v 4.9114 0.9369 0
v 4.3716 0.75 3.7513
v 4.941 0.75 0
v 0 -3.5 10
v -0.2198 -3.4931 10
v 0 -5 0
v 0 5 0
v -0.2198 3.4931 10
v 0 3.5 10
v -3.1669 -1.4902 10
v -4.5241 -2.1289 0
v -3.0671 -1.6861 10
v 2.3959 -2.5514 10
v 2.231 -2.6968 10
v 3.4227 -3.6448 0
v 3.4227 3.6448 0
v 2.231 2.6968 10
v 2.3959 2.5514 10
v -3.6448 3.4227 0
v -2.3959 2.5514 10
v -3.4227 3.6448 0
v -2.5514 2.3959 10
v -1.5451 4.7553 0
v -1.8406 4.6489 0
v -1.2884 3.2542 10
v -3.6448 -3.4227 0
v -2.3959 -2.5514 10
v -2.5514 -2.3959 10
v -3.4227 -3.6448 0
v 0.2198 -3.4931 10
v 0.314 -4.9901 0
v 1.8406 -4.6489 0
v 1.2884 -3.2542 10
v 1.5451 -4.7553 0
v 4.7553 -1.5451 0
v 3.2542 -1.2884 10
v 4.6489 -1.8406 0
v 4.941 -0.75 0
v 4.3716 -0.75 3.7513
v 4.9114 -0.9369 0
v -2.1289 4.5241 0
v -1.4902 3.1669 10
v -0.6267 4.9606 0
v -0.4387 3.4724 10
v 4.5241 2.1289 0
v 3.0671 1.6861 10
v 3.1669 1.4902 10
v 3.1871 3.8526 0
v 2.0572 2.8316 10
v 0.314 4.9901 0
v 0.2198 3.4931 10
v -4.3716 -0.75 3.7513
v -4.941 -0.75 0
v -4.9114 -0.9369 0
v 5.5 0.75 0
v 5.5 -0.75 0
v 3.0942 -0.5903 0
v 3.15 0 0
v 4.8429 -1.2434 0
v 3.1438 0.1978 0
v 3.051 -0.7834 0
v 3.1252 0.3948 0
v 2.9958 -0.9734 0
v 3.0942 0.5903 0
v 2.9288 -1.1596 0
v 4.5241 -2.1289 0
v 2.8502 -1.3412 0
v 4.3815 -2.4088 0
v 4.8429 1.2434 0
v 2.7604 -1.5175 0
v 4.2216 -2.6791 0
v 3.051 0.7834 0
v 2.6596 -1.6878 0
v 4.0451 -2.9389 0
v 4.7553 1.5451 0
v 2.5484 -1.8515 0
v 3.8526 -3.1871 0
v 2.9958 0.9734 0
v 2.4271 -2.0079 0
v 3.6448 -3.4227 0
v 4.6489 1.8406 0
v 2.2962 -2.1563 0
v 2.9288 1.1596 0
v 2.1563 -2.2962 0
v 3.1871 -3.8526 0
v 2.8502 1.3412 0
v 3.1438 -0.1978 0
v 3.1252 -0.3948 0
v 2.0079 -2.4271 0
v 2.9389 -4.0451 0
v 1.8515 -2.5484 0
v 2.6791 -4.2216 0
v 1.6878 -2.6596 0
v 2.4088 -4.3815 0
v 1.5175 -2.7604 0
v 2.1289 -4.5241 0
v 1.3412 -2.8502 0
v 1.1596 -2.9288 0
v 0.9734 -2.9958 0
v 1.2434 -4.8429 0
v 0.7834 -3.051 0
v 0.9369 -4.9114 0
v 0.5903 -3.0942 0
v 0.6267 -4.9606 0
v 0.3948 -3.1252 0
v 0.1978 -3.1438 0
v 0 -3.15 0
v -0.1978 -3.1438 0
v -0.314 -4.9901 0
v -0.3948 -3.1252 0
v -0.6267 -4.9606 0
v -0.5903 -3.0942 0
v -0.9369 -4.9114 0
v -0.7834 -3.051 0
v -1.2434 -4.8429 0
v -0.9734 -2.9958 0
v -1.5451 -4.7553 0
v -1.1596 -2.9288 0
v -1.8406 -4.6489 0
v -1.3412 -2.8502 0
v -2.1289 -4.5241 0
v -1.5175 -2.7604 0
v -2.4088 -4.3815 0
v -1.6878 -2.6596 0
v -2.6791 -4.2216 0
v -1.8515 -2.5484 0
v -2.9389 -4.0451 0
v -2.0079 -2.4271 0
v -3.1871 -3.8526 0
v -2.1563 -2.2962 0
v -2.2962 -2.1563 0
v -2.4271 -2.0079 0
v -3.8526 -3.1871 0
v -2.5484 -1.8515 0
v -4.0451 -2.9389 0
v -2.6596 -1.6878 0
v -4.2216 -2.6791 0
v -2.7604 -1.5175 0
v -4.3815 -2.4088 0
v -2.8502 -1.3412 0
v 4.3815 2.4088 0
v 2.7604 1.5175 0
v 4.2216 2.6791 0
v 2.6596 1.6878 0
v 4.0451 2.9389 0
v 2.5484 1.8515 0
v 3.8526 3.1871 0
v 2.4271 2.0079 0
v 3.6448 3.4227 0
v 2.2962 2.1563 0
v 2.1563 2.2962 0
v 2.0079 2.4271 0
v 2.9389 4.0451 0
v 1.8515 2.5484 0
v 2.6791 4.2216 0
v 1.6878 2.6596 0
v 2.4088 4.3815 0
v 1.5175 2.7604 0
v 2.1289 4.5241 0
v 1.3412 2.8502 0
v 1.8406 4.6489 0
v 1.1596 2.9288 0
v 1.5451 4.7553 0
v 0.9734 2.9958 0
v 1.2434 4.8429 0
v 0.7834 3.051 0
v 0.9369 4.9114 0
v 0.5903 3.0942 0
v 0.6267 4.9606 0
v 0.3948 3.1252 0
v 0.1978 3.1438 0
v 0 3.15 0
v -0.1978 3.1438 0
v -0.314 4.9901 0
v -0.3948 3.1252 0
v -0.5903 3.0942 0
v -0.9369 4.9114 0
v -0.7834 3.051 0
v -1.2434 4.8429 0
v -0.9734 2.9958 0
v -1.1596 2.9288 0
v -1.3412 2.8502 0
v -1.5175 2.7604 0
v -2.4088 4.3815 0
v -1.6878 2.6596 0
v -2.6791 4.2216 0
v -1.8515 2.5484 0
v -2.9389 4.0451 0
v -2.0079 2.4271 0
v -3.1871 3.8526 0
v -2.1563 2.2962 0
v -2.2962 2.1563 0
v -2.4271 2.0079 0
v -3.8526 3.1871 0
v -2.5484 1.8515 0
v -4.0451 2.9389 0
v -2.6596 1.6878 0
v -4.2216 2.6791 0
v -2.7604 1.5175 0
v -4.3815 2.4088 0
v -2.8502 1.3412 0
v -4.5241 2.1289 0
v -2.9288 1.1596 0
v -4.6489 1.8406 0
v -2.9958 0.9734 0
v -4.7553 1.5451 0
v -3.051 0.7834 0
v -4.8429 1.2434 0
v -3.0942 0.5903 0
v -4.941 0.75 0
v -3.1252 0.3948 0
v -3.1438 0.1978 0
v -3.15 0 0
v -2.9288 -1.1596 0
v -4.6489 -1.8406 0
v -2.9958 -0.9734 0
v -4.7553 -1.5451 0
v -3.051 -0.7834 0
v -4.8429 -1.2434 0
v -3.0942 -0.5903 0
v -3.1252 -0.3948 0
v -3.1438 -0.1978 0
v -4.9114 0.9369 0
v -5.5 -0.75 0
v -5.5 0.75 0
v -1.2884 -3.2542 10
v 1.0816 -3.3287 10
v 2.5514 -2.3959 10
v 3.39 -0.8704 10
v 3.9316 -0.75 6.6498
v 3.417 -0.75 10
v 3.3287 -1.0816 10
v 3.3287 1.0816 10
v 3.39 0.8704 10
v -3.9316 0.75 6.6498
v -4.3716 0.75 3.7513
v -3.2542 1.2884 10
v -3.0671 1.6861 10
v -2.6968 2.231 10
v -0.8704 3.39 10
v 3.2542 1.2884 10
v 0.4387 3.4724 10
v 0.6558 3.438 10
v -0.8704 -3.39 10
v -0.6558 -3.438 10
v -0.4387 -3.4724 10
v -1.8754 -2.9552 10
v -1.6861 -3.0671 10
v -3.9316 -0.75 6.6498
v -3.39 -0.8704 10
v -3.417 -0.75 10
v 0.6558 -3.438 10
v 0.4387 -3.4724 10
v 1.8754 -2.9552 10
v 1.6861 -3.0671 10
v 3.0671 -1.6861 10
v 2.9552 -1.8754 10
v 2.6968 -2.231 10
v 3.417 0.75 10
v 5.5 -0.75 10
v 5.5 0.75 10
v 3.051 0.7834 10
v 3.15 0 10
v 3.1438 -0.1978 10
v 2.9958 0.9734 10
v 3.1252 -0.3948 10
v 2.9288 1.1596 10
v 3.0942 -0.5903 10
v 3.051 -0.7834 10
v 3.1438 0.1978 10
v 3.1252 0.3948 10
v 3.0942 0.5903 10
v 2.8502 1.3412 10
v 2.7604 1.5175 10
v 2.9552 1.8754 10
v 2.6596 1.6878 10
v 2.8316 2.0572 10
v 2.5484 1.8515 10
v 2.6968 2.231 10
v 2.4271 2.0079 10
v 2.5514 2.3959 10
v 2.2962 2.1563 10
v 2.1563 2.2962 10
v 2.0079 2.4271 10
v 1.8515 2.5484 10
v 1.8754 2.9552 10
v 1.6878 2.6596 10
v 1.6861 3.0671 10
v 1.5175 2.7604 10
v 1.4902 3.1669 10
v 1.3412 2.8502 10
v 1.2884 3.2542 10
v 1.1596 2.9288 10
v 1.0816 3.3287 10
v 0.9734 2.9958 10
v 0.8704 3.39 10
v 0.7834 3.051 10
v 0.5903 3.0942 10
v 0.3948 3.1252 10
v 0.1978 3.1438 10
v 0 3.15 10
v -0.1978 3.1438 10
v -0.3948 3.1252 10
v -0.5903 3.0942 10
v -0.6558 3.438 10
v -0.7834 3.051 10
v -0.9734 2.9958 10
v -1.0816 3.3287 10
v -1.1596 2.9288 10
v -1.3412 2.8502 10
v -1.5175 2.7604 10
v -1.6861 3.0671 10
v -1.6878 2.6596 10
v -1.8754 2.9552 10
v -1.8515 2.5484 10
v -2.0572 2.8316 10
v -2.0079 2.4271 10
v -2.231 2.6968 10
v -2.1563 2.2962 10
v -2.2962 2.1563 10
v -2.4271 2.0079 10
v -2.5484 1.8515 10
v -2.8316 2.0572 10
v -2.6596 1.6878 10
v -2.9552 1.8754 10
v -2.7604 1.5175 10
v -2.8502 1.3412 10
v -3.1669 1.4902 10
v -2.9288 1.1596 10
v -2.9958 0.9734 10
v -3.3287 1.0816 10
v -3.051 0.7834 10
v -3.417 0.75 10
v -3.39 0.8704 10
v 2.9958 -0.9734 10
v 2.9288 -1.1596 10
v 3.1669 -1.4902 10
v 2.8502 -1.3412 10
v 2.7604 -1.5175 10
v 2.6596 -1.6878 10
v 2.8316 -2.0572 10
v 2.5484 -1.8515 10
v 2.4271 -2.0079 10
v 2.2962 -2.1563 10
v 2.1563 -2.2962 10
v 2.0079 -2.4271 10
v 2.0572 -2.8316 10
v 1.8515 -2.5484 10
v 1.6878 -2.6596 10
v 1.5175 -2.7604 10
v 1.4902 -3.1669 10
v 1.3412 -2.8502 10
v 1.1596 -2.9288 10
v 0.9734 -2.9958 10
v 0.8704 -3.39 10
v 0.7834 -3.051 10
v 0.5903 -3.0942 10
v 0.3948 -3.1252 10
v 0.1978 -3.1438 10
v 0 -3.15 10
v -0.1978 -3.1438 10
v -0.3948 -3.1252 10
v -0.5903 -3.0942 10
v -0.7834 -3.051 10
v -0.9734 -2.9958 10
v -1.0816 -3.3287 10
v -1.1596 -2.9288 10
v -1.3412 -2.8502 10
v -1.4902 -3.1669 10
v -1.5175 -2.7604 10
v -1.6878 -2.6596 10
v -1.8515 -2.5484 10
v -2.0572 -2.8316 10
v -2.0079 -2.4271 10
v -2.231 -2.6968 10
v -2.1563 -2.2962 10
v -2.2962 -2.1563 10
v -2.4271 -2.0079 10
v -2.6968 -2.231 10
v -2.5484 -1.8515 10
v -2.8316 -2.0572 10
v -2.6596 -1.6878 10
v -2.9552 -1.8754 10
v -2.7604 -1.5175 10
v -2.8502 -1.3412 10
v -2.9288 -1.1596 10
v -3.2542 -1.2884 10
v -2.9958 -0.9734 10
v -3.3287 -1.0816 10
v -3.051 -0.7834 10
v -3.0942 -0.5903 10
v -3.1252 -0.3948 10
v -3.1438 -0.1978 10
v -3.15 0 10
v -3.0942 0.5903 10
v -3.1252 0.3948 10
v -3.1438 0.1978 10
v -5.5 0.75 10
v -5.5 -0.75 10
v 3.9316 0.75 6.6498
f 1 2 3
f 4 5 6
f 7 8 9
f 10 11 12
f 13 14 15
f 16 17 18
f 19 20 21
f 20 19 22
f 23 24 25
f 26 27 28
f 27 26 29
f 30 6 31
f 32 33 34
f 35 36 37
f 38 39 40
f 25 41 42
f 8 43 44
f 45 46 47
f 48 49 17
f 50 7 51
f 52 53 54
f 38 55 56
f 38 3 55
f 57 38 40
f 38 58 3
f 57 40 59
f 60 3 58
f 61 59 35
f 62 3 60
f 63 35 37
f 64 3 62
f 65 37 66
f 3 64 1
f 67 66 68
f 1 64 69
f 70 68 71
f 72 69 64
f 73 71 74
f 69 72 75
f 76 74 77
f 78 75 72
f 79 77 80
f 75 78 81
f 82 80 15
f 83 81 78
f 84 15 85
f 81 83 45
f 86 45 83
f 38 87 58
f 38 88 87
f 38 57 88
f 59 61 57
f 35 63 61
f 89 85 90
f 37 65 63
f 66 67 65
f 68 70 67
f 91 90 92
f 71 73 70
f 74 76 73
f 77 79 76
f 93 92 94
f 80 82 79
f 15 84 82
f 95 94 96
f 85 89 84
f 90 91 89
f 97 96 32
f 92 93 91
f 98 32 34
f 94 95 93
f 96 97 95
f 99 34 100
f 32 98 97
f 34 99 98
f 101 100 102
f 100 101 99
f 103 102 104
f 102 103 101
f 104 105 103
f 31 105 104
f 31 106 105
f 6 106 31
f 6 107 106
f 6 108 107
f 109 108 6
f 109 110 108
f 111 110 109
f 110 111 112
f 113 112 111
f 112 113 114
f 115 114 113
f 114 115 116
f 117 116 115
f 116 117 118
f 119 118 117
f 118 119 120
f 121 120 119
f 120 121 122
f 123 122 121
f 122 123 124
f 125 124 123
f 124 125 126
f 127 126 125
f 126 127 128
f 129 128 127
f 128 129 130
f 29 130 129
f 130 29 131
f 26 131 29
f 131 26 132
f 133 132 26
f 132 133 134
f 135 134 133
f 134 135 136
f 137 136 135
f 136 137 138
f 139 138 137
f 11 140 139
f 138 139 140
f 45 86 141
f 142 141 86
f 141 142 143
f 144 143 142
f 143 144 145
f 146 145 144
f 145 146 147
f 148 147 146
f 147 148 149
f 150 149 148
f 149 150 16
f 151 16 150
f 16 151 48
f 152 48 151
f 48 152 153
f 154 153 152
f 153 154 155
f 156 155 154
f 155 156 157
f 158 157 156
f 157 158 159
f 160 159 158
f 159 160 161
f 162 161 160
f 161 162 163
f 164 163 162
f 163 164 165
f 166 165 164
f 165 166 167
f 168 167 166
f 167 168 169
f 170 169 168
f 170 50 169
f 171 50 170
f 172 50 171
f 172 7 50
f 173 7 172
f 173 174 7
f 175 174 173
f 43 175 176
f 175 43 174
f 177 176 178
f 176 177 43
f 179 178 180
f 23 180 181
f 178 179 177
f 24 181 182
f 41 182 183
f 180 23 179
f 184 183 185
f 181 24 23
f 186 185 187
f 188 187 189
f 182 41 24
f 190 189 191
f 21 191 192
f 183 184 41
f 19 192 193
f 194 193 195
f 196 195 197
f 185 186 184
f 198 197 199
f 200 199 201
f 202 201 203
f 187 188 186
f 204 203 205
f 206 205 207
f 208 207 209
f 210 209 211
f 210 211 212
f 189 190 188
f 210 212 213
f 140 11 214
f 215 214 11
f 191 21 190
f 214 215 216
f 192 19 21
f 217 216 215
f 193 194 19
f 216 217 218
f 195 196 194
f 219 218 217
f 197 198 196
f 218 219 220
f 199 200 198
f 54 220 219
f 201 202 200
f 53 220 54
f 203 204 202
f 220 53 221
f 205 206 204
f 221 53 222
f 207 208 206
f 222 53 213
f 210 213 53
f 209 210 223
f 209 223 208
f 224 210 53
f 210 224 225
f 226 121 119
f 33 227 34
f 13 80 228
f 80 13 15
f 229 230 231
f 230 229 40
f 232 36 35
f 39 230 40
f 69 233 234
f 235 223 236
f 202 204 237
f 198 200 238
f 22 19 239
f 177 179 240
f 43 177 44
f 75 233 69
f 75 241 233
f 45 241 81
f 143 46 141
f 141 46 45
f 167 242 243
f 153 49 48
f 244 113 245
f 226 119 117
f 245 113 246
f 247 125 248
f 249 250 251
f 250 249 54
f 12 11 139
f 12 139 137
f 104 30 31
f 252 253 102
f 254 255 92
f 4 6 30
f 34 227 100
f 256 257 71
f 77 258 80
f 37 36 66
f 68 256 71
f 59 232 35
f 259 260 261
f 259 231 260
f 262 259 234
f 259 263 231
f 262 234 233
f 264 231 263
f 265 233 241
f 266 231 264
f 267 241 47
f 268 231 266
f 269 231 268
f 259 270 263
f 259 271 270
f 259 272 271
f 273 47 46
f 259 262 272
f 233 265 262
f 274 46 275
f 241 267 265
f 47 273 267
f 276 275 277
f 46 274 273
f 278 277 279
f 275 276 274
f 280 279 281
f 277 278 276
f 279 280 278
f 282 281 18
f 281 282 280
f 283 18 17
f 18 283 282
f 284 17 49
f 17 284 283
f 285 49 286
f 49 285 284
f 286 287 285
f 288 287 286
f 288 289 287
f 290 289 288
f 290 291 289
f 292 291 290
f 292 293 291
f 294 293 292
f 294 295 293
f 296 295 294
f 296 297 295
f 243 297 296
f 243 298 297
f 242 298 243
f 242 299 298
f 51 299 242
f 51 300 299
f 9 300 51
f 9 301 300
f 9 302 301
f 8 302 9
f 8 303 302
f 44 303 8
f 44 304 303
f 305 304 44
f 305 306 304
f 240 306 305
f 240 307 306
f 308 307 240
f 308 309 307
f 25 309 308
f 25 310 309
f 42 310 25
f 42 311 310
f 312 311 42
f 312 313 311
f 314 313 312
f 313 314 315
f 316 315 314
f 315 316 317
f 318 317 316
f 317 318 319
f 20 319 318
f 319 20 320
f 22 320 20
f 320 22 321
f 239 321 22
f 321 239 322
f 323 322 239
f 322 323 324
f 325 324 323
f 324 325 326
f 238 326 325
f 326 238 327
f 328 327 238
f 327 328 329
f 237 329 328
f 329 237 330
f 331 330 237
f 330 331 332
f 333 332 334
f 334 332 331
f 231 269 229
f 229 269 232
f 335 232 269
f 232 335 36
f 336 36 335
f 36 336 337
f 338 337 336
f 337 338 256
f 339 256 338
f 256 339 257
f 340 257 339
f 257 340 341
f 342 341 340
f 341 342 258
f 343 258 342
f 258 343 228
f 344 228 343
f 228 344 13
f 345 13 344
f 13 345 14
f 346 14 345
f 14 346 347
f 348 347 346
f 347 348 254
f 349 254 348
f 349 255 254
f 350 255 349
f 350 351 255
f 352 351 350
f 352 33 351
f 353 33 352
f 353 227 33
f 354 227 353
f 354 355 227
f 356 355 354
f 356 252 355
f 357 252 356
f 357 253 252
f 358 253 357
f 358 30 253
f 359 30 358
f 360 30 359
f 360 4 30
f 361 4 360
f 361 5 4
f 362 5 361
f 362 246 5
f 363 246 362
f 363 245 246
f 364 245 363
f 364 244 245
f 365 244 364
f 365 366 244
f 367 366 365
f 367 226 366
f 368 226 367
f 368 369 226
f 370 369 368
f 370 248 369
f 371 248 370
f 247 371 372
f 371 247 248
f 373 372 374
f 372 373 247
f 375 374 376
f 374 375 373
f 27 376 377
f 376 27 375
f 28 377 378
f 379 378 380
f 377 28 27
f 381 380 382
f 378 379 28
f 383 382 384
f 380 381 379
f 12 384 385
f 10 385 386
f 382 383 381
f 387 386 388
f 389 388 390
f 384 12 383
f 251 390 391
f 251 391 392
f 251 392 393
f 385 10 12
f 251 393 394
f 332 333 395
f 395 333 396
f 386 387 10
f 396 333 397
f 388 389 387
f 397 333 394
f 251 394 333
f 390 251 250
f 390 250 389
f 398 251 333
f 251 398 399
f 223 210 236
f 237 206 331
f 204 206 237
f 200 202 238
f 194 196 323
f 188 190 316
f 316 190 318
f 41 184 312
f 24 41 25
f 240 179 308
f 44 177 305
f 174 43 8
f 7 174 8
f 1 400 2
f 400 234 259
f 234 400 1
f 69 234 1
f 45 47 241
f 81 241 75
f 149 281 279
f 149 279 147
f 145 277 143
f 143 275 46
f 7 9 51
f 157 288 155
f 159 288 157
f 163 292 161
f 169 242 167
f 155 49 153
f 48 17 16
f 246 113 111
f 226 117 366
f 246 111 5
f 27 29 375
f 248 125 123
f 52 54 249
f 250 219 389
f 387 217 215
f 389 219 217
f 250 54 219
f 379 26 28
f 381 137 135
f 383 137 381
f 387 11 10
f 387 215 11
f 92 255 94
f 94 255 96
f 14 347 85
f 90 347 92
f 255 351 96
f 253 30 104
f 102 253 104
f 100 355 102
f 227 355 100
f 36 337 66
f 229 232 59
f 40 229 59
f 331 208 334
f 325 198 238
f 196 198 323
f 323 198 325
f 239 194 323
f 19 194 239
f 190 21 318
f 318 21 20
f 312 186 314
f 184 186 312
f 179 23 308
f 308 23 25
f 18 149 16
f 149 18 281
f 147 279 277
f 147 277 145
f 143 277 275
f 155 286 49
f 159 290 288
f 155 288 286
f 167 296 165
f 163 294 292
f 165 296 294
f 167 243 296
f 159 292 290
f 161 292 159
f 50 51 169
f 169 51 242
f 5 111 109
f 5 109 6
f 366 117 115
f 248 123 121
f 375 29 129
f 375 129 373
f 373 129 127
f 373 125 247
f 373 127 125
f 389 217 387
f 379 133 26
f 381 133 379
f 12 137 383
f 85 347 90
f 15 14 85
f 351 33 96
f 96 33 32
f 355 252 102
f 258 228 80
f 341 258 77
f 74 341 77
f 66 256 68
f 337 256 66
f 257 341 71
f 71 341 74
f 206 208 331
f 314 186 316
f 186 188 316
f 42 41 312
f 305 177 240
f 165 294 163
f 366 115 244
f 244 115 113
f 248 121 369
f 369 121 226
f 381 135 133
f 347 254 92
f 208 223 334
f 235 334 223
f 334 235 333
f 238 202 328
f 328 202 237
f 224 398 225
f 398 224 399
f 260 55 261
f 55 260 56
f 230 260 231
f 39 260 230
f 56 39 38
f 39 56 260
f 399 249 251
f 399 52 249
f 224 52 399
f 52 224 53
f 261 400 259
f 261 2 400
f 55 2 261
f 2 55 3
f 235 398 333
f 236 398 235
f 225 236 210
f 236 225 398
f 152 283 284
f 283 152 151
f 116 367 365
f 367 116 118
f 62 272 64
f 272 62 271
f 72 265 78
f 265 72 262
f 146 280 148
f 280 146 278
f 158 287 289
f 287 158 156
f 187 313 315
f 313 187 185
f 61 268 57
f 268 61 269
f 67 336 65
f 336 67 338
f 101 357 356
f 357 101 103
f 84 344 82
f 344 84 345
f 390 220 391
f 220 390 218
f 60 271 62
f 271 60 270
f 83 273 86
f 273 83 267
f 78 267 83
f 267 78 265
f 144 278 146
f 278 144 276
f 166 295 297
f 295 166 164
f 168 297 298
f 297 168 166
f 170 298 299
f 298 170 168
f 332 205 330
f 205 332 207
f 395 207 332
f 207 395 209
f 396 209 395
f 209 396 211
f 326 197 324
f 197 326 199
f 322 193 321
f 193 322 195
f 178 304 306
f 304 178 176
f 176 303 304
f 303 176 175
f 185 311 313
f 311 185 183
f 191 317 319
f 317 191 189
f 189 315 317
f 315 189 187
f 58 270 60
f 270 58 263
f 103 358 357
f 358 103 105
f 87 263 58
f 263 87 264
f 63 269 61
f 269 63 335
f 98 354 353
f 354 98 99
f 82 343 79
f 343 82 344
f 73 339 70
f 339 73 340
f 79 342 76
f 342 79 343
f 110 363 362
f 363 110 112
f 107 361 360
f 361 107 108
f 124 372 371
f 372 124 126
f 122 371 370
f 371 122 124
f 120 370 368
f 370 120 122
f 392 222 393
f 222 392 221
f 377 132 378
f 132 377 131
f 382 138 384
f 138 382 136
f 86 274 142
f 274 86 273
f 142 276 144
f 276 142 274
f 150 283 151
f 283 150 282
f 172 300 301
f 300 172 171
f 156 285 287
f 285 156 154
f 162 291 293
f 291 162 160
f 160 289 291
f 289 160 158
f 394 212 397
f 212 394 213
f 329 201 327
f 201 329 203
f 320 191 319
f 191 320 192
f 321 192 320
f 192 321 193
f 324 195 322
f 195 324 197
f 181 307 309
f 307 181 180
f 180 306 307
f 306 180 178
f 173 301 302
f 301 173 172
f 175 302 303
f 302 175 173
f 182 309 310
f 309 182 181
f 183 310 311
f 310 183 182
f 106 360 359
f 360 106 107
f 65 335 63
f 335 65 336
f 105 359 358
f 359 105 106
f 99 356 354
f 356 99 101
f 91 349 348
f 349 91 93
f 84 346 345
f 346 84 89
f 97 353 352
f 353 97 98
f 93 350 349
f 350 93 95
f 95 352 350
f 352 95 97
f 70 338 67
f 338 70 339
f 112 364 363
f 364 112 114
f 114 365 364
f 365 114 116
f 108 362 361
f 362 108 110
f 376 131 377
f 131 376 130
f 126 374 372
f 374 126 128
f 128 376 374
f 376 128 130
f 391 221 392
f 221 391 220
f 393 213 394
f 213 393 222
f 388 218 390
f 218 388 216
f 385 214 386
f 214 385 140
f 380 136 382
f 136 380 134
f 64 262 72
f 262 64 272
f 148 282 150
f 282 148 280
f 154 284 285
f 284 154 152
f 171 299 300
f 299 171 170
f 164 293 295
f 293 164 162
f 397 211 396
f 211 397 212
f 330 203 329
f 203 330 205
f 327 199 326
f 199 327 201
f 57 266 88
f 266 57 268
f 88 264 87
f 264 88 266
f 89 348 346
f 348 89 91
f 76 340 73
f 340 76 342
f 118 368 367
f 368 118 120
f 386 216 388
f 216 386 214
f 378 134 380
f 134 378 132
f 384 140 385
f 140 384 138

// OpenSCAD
difference() {
	union() {
		cylinder($fn = 100, d1 = 11, d2 = 10, h = 0);
		translate(v = [0, 0, 0]) {
			cylinder($fn = 100, d1 = 10, d2 = 7, h = 10);
		}
		translate(v = [-5.5000000000, -0.7500000000, 0]) {
			cube(size = [11, 1.5000000000, 10]);
		}
	}
	cylinder($fn = 100, d = 6.3000000000, h = 100);
	translate(v = [0, 0, -0.2000000000]) {
		cylinder($fn = 6, d = 5.3000000000, h = 0);
	}
}
